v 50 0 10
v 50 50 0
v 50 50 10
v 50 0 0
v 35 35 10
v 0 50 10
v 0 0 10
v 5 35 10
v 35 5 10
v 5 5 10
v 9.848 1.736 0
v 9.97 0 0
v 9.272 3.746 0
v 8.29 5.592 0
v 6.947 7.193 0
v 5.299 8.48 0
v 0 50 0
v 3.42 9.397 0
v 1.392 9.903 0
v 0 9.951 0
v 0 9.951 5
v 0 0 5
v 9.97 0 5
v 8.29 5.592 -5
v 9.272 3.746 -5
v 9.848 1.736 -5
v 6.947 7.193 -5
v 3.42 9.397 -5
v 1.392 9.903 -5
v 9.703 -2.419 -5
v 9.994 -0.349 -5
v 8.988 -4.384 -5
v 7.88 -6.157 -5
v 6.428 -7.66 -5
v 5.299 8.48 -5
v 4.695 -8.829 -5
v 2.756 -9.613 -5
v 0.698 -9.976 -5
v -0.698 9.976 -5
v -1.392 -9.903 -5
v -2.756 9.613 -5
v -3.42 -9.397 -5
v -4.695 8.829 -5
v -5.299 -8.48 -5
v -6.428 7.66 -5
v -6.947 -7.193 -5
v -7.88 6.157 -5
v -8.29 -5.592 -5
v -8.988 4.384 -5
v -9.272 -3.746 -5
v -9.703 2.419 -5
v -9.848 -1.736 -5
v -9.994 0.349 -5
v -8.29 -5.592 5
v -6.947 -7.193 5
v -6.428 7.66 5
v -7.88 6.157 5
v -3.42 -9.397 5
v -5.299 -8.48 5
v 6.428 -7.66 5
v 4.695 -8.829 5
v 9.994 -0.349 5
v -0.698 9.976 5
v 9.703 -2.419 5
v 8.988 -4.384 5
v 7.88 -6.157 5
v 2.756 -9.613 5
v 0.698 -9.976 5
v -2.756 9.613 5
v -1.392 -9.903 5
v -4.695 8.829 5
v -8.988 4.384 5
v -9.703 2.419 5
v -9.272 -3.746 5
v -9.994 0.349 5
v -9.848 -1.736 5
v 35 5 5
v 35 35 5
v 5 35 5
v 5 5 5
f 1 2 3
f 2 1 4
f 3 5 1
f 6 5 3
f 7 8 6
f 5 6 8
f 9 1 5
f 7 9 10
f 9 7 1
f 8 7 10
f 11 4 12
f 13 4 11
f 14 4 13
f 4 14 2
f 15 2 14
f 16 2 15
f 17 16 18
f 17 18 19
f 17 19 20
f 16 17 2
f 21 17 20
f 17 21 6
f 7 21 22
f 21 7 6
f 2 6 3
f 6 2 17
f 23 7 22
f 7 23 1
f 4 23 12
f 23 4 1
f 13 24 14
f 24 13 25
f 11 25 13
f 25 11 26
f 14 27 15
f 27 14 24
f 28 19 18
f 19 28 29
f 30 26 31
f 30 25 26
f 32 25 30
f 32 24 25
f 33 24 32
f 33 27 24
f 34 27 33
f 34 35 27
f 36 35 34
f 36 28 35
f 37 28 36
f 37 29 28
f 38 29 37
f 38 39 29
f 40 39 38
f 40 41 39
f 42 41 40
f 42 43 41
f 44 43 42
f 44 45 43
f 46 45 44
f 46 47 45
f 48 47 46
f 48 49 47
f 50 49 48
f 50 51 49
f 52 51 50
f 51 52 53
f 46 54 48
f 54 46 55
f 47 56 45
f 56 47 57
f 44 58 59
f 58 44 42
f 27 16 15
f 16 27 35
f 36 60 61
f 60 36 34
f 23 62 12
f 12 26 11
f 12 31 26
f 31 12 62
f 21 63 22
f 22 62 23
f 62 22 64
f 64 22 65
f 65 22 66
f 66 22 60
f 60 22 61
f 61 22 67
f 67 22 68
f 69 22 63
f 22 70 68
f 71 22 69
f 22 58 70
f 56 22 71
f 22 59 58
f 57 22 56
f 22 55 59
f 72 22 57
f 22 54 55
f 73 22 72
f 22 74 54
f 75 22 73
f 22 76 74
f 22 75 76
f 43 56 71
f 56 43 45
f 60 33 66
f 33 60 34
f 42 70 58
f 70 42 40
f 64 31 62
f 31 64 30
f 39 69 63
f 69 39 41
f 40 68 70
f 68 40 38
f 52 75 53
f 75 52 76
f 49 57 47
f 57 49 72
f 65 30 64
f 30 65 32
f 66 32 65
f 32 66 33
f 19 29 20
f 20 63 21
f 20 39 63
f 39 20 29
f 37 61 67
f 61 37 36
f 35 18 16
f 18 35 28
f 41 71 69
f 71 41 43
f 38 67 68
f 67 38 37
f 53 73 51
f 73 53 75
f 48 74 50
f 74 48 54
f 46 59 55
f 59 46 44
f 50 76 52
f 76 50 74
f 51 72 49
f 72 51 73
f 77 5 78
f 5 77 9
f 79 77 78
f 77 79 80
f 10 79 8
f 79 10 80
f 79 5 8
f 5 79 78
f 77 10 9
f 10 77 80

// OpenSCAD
difference() {
  union() {
    // Main body
    cube([50, 50, 10]);

    // Rounded corners
    translate([0, 0, 0])
    rotate([0, 0, 10])
    cylinder(r=10, h=10, center=true);

    translate([0, 0, 0])
    rotate([0, 0, 10])
    cylinder(r=10, h=10, center=true);
  }

  // Subtract the inner cube
  translate([5, 5, 5])
  cube([30, 30, 10]);
}
